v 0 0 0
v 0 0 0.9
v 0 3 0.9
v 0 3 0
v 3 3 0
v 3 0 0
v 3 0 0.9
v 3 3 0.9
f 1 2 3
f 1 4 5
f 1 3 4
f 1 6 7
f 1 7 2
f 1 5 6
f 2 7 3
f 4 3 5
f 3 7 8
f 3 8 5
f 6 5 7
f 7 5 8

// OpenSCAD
/* Warning, this is a very basic generator with a lot of approximation 
input data : [VQFN, NJA, 3x3x0.9mm, 20, , A, C04-01030A]
generated by com.zoubworld.electronics.cad.model3d.Basic
Date : Sun Feb 15 10:50:49 CET 2026
*/

//body
color("black")
translate([0,0,0])
cube([3.0,3.0,0.9], center=false);
